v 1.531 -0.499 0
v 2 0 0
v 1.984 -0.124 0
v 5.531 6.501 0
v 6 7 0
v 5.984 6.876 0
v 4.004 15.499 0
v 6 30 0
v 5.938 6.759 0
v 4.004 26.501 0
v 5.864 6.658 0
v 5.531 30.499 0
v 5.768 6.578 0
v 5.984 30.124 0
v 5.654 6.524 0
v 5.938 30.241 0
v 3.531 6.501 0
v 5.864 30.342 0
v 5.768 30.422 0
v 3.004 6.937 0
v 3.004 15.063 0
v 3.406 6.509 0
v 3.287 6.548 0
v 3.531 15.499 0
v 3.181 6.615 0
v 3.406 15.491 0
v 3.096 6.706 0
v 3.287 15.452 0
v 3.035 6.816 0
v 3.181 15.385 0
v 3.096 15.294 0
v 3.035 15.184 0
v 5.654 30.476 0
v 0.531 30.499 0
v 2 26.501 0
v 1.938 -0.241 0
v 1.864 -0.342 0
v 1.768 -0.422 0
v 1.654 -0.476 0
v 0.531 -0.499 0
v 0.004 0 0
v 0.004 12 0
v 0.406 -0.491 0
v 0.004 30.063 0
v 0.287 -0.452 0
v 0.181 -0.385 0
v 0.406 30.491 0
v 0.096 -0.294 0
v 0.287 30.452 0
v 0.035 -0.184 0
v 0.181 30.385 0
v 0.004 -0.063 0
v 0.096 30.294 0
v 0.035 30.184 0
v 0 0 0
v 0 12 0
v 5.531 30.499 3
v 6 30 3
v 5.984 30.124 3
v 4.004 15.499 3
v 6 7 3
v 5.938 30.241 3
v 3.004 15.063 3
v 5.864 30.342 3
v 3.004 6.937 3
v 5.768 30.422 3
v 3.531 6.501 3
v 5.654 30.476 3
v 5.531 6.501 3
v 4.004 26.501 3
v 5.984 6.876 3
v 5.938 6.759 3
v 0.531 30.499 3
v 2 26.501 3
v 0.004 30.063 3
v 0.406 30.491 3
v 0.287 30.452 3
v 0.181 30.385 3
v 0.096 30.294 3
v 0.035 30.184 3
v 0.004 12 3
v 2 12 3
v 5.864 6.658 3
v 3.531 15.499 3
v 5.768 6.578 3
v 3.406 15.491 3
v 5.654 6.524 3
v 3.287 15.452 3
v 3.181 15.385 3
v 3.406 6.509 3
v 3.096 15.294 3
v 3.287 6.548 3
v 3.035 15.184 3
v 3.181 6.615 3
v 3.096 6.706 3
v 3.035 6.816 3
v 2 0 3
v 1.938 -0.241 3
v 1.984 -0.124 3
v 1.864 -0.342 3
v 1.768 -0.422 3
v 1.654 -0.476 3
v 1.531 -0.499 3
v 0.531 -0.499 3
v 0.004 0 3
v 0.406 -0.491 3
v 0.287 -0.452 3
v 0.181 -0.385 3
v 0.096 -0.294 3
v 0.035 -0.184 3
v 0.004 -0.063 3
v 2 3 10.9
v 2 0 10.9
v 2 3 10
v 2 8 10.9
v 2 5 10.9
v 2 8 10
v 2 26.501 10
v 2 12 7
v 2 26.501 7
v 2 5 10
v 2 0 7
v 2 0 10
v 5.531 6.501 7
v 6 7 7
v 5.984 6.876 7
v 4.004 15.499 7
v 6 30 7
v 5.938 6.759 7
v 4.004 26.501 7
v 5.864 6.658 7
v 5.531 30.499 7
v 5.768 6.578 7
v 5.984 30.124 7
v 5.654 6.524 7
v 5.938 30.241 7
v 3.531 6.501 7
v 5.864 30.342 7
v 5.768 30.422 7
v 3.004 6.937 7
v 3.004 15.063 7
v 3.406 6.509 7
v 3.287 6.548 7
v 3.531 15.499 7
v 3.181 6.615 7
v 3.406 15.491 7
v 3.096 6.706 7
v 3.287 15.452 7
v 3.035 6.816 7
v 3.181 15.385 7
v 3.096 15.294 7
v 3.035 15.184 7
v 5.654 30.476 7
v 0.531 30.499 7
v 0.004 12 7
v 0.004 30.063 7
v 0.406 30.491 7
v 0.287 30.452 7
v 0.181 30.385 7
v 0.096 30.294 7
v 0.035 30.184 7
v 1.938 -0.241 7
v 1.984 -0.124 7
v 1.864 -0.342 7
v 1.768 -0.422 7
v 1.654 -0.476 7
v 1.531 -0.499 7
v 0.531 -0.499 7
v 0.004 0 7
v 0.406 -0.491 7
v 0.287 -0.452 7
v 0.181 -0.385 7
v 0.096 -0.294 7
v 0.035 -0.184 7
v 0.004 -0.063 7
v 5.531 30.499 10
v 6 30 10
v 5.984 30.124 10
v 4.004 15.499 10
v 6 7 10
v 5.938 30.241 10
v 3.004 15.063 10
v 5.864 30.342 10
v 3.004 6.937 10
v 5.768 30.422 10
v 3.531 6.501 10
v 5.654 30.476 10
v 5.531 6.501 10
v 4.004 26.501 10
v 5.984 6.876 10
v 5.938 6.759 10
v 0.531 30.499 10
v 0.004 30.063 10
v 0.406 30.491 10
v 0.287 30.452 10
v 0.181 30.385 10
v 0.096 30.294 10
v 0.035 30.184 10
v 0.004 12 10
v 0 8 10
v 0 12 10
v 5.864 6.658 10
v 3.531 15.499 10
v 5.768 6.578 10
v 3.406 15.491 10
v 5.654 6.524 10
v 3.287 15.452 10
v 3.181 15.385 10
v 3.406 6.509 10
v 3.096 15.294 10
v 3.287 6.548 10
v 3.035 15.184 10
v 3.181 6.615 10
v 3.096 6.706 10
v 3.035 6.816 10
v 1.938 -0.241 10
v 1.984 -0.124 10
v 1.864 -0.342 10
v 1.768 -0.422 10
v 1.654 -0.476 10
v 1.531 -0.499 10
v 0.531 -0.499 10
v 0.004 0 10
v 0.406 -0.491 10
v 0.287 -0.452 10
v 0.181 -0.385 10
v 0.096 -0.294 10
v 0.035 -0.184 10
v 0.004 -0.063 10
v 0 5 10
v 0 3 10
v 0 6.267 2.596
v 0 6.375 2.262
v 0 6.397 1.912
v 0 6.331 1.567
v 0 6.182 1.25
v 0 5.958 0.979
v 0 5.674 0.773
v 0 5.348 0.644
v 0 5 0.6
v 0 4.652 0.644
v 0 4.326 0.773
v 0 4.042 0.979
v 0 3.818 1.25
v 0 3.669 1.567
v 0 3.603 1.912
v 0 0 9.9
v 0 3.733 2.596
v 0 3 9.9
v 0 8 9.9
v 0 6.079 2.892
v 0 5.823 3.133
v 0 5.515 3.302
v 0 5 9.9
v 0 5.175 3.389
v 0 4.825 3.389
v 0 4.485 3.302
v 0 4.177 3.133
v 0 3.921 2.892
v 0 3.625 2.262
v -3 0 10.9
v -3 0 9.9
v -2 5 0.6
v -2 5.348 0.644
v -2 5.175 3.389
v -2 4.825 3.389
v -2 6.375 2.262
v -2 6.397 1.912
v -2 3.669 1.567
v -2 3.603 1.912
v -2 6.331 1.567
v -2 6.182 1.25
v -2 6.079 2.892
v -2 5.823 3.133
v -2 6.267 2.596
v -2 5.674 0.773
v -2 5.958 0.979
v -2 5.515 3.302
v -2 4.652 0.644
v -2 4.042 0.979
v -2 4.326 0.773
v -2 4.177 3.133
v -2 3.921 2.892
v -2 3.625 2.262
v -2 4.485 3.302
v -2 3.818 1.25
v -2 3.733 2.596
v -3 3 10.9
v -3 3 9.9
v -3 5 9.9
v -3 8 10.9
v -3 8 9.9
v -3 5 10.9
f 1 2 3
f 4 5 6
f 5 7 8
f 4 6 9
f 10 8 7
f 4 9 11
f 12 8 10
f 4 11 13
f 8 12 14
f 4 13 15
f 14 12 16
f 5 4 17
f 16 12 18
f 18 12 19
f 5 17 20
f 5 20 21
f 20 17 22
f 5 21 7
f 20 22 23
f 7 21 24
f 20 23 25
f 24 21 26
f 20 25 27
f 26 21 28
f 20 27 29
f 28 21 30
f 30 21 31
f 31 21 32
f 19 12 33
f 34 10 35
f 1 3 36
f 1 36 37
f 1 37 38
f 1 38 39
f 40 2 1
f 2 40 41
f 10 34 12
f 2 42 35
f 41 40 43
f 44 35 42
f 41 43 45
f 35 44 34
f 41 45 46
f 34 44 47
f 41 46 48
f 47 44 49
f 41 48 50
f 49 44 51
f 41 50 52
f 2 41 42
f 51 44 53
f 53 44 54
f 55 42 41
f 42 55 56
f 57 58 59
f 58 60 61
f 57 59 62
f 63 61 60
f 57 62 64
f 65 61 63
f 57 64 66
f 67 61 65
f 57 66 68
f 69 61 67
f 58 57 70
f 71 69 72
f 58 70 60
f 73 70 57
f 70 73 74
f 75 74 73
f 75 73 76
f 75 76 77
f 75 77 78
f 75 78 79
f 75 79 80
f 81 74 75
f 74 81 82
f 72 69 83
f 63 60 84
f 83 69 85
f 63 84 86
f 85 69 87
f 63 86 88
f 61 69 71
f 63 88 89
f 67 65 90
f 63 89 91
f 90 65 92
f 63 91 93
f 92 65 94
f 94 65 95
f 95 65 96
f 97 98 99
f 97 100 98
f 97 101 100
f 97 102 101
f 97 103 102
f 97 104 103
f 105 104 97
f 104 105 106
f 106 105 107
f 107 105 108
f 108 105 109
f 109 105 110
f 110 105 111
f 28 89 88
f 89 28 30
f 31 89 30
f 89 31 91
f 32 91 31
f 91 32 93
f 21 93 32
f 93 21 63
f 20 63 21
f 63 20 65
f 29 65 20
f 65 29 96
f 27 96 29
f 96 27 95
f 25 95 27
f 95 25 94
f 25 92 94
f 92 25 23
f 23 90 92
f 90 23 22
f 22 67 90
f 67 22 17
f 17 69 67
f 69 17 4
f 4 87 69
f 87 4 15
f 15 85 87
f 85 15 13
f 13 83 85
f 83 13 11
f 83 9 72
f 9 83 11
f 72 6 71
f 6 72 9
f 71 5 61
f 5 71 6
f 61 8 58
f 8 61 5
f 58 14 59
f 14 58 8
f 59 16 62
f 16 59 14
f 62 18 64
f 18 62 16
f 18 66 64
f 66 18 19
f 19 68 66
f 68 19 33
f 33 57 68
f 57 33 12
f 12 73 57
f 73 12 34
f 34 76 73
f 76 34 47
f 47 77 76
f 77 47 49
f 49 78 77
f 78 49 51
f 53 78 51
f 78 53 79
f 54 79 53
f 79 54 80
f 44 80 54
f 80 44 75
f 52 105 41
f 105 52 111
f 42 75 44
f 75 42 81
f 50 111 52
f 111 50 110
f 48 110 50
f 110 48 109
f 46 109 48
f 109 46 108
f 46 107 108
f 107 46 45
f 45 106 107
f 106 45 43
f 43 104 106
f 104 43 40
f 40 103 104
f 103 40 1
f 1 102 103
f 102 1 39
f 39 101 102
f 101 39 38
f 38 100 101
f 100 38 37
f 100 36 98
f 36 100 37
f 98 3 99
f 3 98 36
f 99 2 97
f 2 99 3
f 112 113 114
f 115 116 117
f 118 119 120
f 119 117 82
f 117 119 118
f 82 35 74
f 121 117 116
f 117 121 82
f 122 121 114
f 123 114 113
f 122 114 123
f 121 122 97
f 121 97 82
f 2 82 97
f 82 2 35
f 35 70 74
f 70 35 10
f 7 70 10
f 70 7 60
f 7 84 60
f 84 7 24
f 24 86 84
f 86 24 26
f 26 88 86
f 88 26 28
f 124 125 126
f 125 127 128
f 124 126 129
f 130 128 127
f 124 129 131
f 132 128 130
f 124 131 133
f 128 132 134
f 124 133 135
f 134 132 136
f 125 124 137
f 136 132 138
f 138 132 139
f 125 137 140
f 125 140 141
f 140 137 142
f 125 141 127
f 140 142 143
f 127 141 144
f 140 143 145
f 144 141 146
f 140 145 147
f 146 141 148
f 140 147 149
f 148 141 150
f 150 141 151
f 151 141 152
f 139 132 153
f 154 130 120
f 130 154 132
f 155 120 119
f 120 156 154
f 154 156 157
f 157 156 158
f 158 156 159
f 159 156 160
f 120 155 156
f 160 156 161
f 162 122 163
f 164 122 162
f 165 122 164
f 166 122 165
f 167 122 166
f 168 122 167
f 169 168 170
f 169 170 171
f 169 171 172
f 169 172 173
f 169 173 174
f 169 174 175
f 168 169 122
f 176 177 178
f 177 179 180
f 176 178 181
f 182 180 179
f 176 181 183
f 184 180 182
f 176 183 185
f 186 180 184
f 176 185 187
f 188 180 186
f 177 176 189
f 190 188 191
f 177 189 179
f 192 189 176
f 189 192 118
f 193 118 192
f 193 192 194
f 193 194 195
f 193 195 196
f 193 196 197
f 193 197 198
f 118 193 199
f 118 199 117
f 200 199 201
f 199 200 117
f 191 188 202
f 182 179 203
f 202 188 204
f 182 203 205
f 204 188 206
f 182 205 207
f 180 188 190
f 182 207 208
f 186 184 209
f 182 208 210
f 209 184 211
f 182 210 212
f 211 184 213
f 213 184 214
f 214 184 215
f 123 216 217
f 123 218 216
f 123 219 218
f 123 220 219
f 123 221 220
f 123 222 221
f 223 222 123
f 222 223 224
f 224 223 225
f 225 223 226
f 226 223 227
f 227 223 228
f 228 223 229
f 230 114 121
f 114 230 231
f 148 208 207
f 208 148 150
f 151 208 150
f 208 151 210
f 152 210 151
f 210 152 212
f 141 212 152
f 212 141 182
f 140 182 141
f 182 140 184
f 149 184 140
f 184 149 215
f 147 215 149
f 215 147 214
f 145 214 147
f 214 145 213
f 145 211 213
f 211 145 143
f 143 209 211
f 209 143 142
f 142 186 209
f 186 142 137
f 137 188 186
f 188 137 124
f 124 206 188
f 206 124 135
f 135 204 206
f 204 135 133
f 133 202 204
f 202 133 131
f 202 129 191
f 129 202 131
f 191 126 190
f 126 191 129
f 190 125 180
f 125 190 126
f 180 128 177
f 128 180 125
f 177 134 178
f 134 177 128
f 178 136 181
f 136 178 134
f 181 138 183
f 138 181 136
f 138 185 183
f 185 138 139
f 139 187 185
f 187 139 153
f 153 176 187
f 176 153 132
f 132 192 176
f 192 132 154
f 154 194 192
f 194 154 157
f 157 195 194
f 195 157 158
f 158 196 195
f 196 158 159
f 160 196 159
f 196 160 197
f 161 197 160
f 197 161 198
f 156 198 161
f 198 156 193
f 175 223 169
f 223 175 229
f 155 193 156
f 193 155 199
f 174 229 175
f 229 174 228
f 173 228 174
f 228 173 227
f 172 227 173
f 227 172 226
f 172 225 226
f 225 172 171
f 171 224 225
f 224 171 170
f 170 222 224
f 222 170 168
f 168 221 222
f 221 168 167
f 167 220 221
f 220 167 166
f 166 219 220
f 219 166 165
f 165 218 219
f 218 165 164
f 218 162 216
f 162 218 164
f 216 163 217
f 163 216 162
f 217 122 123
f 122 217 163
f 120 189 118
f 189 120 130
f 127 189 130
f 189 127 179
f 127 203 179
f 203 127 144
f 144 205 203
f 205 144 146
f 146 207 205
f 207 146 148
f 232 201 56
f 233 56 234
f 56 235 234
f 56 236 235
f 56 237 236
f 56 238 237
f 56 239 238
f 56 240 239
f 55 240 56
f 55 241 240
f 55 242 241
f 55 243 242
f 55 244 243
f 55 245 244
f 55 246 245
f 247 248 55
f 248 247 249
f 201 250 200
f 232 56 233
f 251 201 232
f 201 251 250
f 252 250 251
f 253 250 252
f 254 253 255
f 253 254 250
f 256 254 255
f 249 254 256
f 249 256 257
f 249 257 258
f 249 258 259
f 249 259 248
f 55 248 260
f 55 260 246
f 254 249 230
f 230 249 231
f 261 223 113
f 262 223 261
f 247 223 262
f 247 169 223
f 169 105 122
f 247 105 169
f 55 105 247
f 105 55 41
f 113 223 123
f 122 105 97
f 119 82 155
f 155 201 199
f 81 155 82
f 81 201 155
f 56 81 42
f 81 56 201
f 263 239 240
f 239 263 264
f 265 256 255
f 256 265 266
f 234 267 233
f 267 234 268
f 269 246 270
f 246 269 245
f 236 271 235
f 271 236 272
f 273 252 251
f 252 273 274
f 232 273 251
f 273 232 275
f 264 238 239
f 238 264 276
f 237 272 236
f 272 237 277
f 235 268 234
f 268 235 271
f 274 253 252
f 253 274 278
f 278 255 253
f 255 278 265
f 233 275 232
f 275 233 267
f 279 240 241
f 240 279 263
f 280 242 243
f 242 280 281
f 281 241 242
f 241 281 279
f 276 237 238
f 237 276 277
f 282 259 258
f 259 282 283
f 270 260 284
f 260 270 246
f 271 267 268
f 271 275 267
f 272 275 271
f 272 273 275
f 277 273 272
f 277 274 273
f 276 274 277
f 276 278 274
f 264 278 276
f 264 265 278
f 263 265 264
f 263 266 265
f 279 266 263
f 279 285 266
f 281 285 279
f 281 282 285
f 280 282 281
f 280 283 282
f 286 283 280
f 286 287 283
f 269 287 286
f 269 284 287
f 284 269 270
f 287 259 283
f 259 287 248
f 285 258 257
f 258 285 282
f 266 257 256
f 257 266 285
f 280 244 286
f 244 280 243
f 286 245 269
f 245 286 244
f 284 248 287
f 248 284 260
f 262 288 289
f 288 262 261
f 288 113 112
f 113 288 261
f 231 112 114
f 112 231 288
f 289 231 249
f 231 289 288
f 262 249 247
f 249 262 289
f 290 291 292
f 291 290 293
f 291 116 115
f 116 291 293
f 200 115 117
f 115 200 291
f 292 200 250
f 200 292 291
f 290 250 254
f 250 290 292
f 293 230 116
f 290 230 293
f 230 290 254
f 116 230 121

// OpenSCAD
// JMGK (c) 2021

$fn = 25;

module clip() {
  linear_extrude(height = 3) {
    minkowski() {
      polygon(points = [
        [ 0, 0 ],
        [ 0, 30 ],
        [ 5, 30 ],
        [ 5, 7 ],
        [ 3, 7 ],
        [ 3, 15 ],
        [ 4, 15 ],
        [ 4, 27 ],
        [ 1, 27 ],
        [ 1, 0 ],
      ]);
      circle(0.5);
    }
  }
}

//clips
translate([ 0.5, 0, 0 ]) clip();
translate([ 0.5, 0, 7 ]) clip();

//base
cube([ 2, 12, 10 ]);

//pino
translate([ -2, 5, 2 ]) rotate([ 0, 90, 0 ]) cylinder(4, 1.4, 1.4);

//tabs
translate([ -3, 0, 9.9 ]) cube([ 5, 3, 1 ]);
translate([ -3, 5, 9.9 ]) cube([ 5, 3, 1 ]);
